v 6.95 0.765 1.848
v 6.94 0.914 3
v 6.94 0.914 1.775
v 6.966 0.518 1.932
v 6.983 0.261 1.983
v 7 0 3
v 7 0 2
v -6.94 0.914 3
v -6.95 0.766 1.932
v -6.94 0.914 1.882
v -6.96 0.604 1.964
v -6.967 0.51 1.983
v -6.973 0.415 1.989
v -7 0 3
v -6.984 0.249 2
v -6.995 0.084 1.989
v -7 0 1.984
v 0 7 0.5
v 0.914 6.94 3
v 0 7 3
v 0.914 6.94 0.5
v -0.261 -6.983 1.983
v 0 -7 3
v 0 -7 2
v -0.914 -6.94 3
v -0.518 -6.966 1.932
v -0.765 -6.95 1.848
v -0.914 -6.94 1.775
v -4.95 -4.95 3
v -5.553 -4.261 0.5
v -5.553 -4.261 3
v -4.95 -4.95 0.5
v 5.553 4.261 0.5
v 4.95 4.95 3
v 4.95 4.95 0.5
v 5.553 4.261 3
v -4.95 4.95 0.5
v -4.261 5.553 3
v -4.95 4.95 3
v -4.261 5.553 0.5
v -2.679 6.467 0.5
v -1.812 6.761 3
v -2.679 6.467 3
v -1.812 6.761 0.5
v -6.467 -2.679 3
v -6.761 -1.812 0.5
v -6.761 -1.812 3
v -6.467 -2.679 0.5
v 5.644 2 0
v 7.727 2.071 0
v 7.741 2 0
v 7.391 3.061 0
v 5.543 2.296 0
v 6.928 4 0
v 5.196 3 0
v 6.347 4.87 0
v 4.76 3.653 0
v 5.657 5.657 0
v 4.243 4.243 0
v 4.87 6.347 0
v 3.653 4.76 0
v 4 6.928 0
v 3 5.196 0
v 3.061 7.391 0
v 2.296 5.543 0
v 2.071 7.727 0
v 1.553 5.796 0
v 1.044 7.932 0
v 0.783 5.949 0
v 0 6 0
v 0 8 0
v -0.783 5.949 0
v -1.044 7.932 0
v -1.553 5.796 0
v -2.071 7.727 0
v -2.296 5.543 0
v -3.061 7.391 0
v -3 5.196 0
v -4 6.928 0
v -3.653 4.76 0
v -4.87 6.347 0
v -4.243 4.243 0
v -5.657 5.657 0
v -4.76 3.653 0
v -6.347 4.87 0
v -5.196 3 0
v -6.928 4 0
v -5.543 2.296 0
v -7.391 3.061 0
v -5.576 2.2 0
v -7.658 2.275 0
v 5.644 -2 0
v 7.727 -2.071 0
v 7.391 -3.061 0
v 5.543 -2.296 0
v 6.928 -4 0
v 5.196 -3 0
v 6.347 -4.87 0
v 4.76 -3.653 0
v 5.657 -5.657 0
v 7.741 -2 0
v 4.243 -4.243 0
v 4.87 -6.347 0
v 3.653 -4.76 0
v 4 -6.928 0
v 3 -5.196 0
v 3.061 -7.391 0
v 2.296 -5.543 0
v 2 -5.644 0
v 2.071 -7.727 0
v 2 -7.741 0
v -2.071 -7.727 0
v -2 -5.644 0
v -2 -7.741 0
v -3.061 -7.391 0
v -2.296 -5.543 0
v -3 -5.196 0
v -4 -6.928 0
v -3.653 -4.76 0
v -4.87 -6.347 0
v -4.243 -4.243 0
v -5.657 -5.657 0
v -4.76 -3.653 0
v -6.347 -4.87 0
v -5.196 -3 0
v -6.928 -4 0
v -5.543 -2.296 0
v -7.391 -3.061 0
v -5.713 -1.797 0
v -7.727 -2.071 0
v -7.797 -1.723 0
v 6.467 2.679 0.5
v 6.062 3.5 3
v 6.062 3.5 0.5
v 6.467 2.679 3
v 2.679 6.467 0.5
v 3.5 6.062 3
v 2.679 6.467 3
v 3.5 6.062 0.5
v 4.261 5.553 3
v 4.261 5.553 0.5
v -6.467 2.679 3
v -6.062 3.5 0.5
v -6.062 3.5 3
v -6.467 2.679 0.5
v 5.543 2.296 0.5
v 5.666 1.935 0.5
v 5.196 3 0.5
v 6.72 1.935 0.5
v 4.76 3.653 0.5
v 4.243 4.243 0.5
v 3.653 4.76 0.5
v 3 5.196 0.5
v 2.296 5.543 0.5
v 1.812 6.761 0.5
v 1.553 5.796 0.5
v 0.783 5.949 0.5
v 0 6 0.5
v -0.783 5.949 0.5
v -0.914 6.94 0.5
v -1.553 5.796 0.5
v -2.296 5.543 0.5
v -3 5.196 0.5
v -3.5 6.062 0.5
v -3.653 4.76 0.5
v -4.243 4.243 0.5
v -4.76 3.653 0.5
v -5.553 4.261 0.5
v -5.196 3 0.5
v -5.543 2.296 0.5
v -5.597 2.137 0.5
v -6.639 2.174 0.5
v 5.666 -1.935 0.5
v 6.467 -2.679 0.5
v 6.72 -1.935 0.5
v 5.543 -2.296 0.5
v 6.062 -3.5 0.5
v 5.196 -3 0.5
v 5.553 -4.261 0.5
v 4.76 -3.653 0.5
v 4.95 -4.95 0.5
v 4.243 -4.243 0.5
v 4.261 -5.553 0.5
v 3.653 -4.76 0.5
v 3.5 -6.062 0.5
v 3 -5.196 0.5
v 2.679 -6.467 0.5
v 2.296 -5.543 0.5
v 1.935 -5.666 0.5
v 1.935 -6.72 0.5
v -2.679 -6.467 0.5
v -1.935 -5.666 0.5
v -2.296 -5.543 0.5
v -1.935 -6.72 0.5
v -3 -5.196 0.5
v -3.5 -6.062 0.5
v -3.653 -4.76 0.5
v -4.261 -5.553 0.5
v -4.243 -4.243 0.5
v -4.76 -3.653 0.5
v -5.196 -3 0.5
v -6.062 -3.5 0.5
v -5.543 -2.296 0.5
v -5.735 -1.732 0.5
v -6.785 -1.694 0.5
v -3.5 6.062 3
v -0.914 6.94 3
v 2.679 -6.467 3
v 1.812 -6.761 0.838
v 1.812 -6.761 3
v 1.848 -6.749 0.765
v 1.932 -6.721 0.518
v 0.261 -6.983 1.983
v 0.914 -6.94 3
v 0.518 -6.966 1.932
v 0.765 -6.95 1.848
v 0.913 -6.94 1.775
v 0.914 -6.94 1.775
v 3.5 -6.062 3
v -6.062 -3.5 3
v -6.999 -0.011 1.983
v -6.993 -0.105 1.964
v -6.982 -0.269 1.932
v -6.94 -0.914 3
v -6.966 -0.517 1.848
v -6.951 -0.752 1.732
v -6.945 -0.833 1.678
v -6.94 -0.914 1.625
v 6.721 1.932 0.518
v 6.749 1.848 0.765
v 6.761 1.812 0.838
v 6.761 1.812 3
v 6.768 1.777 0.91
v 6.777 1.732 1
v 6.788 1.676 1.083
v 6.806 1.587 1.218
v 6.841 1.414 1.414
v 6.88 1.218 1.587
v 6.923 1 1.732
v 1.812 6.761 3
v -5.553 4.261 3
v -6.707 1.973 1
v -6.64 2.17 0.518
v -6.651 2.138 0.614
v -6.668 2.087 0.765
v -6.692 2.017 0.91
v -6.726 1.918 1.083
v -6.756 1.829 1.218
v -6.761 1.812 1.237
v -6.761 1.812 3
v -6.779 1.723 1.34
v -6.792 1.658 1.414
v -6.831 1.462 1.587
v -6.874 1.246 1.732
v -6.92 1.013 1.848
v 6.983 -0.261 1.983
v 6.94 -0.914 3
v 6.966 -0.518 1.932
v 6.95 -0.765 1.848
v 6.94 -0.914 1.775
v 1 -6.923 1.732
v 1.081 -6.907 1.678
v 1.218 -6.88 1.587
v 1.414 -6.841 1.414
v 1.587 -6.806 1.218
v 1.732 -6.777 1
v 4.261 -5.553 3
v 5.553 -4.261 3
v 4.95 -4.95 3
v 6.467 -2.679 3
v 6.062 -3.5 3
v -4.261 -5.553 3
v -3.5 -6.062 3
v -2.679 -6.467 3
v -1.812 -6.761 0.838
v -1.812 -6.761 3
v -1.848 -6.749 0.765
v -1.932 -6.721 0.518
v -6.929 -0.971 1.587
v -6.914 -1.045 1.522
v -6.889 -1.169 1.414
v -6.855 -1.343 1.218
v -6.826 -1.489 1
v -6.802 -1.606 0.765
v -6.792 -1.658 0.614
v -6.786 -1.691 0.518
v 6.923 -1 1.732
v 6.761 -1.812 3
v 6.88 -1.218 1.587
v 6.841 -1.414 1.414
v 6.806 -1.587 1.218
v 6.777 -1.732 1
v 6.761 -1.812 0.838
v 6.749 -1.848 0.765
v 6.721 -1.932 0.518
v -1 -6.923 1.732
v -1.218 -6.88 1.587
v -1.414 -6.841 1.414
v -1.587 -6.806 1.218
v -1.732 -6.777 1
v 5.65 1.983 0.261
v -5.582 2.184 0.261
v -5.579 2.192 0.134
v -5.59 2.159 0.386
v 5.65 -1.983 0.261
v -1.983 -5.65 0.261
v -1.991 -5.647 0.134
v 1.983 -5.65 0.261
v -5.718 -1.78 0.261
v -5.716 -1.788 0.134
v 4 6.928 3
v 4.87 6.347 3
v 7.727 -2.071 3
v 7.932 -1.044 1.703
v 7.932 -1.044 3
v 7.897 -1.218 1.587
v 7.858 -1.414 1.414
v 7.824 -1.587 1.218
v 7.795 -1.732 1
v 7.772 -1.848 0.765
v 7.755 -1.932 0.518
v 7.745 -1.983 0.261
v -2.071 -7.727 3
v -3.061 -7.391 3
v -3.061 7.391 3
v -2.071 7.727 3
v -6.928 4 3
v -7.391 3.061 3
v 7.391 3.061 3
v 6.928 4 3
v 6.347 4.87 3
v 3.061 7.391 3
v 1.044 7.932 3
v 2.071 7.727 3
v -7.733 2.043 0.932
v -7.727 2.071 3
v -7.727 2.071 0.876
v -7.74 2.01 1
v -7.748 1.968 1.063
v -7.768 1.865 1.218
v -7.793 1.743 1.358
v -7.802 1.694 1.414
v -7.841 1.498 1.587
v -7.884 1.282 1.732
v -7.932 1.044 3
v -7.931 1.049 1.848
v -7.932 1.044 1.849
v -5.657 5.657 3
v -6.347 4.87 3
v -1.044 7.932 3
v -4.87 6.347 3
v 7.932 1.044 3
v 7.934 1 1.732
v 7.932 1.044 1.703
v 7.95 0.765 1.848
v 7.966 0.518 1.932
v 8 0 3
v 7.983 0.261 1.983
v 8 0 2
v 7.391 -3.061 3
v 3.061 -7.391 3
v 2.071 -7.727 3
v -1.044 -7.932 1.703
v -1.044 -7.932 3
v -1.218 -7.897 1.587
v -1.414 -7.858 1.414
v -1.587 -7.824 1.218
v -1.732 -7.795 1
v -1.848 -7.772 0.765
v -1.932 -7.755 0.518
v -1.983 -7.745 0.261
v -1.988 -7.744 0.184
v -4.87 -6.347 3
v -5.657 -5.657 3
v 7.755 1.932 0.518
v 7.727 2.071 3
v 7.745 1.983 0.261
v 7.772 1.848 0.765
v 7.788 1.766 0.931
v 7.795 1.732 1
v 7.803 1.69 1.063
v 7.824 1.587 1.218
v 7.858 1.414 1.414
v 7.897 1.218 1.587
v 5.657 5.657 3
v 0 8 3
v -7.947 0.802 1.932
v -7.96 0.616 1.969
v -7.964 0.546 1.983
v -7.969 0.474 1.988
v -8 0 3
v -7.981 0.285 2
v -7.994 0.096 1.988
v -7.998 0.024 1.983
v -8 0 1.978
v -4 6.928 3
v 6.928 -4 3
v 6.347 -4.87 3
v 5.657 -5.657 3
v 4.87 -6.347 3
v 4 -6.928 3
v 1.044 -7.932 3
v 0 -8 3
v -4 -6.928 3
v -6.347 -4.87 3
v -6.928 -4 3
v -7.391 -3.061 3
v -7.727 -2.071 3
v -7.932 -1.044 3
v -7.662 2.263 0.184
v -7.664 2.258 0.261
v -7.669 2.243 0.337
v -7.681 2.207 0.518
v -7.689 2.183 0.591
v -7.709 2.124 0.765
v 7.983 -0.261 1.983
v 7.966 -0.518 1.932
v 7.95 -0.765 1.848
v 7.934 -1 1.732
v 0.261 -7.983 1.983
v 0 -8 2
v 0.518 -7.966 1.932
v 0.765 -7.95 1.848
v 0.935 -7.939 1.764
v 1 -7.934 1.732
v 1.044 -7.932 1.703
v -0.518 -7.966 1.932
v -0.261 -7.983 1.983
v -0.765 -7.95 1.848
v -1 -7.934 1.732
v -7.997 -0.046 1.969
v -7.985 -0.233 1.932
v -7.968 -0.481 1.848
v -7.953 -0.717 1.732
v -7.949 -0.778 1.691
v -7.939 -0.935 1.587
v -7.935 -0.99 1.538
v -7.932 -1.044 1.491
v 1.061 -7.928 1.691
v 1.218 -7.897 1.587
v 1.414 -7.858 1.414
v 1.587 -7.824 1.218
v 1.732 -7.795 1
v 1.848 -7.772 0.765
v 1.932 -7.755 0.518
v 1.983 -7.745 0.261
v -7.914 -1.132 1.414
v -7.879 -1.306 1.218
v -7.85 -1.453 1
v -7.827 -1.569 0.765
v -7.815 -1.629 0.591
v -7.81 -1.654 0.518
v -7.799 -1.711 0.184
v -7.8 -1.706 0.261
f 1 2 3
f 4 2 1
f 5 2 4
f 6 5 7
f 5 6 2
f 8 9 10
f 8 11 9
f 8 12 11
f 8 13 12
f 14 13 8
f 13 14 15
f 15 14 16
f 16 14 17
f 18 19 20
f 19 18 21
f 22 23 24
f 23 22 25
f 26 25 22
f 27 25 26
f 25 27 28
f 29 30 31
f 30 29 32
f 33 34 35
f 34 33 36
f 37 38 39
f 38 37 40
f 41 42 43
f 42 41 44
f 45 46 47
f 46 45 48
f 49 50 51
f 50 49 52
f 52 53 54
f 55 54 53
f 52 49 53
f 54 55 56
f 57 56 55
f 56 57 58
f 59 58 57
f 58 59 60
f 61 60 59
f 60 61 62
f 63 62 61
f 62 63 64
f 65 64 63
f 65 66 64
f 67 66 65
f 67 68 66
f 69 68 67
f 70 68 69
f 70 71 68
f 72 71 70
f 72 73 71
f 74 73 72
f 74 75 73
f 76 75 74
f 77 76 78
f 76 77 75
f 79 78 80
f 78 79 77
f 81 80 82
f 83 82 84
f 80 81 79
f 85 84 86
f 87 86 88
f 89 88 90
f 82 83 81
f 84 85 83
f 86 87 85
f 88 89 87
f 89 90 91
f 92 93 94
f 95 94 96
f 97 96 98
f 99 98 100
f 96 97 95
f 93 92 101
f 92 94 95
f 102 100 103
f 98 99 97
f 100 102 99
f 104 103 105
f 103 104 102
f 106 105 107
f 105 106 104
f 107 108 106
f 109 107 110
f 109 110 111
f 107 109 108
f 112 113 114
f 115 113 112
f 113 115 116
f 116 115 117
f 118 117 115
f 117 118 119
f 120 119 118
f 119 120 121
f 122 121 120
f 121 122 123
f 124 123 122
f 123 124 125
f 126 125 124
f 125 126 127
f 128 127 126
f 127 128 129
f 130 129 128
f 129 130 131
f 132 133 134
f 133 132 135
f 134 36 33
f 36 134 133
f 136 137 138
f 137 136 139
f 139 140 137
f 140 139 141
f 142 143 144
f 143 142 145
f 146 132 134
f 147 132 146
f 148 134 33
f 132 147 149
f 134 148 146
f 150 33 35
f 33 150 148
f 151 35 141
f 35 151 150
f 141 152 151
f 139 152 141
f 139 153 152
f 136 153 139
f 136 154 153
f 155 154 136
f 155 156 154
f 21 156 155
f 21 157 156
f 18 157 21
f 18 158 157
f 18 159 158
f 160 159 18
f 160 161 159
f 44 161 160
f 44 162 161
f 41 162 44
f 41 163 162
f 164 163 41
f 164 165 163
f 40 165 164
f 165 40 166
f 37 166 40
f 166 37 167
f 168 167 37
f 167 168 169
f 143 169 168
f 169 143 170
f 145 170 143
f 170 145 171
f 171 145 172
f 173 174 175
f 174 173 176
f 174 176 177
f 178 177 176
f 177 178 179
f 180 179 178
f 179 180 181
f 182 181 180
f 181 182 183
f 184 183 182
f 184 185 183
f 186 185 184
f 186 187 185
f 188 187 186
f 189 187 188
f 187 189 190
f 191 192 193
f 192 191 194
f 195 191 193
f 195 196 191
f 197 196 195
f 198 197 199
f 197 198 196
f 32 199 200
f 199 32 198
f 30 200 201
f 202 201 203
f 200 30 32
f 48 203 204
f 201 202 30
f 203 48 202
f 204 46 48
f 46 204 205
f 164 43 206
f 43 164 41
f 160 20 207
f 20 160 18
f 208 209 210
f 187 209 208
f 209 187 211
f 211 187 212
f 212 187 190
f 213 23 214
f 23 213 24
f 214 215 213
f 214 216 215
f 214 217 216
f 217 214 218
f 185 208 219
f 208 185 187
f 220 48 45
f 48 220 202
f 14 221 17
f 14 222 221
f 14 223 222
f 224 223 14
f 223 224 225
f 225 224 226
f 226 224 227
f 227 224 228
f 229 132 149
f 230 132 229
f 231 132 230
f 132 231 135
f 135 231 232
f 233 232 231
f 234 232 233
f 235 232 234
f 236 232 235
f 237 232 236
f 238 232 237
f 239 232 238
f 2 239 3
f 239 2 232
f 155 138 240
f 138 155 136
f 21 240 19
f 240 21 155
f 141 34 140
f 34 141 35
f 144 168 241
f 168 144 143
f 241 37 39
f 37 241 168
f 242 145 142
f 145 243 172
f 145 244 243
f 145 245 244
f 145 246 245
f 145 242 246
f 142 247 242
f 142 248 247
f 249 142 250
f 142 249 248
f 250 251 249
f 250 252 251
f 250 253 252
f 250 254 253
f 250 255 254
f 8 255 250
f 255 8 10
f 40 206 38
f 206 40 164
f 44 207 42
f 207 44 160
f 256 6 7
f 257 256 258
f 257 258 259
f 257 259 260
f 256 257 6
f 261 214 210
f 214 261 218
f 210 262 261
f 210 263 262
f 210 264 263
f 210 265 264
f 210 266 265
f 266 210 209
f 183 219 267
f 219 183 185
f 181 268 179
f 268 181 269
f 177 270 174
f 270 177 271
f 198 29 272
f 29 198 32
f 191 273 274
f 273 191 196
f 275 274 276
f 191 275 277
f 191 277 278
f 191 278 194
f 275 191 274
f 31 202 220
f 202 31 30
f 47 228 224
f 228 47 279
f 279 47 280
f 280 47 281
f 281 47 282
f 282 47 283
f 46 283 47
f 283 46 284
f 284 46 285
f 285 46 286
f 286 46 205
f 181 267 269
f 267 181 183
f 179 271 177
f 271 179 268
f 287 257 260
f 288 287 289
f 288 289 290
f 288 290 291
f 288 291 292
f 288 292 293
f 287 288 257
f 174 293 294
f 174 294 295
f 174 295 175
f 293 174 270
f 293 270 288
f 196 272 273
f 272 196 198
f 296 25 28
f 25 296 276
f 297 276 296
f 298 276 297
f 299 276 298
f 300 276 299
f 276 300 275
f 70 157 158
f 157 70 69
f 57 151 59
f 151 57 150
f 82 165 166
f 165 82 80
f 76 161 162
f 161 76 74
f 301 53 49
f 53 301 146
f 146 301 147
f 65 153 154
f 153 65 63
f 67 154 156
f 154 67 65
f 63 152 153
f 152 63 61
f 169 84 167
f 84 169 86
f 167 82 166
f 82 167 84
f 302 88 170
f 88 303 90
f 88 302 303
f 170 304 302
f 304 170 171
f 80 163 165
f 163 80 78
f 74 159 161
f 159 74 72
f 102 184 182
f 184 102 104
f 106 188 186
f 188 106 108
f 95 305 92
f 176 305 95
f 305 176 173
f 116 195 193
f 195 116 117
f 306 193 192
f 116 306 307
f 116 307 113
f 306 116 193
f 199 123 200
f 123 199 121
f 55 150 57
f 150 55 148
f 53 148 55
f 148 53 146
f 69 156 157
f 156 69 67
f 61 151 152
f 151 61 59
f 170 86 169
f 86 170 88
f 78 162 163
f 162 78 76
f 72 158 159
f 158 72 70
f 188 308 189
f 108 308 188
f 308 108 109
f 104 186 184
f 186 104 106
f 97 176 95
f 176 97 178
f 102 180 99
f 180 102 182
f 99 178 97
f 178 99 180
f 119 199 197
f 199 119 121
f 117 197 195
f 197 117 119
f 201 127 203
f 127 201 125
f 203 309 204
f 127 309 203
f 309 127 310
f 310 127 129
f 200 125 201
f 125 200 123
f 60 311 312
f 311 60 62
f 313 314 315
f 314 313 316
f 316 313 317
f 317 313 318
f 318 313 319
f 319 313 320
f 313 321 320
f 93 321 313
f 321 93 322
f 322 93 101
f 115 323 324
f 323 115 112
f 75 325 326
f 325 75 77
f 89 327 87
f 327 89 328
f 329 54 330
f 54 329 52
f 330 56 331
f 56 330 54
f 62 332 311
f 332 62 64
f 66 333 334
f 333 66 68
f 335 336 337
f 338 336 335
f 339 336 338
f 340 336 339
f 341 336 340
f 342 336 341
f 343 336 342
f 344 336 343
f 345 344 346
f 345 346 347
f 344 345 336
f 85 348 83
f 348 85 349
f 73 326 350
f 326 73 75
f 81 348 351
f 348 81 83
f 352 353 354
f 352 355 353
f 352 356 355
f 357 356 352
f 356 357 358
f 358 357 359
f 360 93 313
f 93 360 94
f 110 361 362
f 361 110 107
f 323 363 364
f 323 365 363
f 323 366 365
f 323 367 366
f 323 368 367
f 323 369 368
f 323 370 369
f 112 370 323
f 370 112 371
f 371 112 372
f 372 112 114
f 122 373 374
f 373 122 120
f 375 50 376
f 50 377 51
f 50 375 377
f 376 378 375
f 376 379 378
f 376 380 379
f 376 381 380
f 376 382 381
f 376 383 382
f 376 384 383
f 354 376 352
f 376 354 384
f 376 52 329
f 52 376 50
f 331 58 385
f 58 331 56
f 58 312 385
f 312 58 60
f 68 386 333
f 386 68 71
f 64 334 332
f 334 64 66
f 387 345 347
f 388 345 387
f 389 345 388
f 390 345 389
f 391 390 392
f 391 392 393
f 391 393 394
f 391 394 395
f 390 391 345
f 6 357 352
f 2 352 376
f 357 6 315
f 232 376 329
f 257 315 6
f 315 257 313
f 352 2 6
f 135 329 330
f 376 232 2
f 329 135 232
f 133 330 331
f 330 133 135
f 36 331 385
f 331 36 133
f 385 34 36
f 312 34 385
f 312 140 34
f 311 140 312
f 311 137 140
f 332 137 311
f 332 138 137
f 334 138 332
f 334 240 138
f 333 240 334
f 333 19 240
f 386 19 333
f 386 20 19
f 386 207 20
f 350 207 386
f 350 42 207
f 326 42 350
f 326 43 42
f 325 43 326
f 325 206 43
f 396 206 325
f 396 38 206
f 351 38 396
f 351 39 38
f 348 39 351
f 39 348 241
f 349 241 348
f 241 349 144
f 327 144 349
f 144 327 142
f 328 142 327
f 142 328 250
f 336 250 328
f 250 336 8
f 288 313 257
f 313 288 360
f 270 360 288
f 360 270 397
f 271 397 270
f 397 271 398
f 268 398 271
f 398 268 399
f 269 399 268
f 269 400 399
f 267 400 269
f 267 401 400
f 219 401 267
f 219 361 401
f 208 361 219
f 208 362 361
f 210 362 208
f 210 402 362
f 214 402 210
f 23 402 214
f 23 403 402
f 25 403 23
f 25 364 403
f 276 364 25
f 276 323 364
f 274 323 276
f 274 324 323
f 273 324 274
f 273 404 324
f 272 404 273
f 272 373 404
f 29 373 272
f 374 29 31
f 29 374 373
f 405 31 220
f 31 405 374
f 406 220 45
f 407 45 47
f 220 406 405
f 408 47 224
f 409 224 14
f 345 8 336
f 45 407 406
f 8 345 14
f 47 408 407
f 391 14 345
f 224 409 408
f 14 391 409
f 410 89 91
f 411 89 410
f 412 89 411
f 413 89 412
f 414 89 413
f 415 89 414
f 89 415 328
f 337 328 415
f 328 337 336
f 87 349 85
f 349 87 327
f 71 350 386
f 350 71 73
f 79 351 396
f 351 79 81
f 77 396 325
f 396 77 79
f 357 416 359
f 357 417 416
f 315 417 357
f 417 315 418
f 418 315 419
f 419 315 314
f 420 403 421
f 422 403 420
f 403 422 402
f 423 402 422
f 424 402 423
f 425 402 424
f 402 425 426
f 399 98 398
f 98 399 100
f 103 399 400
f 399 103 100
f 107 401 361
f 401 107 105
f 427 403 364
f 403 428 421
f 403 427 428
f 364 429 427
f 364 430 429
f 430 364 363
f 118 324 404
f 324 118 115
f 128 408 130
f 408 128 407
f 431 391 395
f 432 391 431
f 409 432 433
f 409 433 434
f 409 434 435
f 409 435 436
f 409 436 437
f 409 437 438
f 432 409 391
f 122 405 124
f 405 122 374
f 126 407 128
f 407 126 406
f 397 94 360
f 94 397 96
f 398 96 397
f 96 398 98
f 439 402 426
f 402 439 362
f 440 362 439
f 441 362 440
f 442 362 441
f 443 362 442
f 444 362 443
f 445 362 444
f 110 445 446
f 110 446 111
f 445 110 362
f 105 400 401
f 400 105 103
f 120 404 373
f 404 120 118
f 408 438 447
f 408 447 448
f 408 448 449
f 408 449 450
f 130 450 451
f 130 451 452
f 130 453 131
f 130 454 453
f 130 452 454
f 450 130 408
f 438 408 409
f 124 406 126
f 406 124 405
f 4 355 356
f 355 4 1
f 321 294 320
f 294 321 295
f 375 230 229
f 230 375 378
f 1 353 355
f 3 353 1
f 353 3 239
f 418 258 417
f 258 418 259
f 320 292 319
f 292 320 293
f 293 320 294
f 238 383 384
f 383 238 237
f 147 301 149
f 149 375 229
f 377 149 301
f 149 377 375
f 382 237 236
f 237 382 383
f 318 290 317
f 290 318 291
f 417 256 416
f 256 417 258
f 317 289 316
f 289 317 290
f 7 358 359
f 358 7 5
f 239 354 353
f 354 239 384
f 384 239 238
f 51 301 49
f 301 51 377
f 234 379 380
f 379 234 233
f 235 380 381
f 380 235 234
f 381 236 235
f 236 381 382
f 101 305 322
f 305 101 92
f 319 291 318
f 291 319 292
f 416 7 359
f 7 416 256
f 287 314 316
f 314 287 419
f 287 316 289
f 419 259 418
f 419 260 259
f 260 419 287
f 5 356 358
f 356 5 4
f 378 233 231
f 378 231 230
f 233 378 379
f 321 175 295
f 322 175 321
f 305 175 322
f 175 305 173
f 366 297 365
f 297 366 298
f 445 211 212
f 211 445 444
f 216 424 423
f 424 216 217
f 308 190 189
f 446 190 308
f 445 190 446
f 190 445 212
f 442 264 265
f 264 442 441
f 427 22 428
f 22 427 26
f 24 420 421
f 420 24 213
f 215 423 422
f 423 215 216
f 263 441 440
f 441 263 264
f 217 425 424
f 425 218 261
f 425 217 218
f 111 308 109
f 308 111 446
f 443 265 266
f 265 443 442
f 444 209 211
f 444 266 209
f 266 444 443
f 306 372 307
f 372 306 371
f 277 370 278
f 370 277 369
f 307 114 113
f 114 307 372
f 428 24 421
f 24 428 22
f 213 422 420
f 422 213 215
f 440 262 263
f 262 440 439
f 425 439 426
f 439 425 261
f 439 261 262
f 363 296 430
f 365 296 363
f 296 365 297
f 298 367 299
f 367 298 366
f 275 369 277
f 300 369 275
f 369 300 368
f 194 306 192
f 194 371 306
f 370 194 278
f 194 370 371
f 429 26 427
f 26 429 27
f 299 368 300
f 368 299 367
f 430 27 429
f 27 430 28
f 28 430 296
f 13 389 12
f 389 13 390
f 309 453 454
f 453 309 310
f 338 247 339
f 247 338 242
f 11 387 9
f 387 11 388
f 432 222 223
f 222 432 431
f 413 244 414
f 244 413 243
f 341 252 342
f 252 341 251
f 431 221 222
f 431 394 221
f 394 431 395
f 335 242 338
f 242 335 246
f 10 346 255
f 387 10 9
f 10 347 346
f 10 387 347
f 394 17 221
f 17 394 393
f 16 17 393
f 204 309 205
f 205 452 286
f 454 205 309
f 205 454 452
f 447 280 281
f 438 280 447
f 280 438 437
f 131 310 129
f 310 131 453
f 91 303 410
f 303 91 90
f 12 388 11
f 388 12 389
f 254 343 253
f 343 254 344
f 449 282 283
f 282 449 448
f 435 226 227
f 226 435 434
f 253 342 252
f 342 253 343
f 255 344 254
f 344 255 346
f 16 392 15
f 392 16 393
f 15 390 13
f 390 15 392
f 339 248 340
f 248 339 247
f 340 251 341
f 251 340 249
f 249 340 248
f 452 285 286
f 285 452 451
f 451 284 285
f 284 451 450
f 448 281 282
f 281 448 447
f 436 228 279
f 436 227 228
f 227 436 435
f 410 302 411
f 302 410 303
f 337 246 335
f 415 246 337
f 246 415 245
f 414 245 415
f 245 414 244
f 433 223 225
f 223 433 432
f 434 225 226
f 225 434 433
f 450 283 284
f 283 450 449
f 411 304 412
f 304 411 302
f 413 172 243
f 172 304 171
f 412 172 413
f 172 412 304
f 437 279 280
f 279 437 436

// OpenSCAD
// file: ../build_environments.scad
// build_environments.scad: modules to build level sections
//

module pool(diameter=10.0, wall_height=2.0, step_width=3.0, connections=[])
{
    difference() {
        union() {
        difference() {
            cylinder(h=0.5,r1=diameter+step_width,r2=diameter+step_width,$fn=48);
            translate([0,0,-0.1])
                cylinder(h=0.7,r1=diameter,r2=diameter,$fn=48);
        }
        difference() {
            cylinder(h=wall_height,r1=diameter+step_width+1.0,r2=diameter+step_width+1.0,$fn=48);
            translate([0,0,-0.1])
                cylinder(h=wall_height+0.2,r1=diameter+step_width,r2=diameter+step_width,$fn=48);
        }
        }
    
        for (c = connections)
        {
            rotate([0,90,0]) {
                angle = atan2(c[1],c[0]);
                rotate([-angle,0,0]) {
                    cylinder(h=diameter+5.0,r1=c[2],r2=c[2],$fn=48);
                }
            }
        }
    }
}

module straight(length=10.0, width=2.0, dy1=0.0, dy2=0.0, dz=0.0)
{
    dims = [0, 0, 0, 0, 0, (dz/length)];
    matrix = [
        [ 1, dims[0], dims[1], 0 ],
        [ dims[2], 1, dims[4], 0 ],
        [ dims[5], dims[3], 1, 0 ],
        [ 0, 0, 0, 1 ]
    ];
    multmatrix(matrix)
    difference() {
        translate([dy1,0,0])
        union() {
            rotate([0,90,0]) {
                difference() {
                    cylinder(h=(length-dy1-dy2),r1=width+1.0,r2=width+1.0,$fn=24);
                    translate([0,0,-0.1])
                        cylinder(h=(length-dy1-dy2+0.2),r1=width,r2=width,$fn=24);
                }
                difference() {
                    cylinder(h=1.0,r1=width+2.0,r2=width+2.0,$fn=24);
                    translate([0,0,-0.1])
                        cylinder(h=1.2,r1=width,r2=width,$fn=24);
                }
                translate([0,0,(length-dy1-dy2)-1.0]) {
                    difference() {
                        cylinder(h=1.0,r1=width+2.0,r2=width+2.0,$fn=24);
                        translate([0,0,-0.1])
                            cylinder(h=1.2,r1=width,r2=width,$fn=24);
                    }
                }
            }
        }
        translate([0,0,-(2*width+4.0)/2])
            cube([3*length,3*length,2*width+4.0],center=true);
    }
}

module curve(p0=[0,0], center=[0,0], dir=1, angle=0.0, width=2.0)
{
    radius = sqrt((p0[0]-center[0])*(p0[0]-center[0]) + (p0[1]-center[1])*(p0[1]-center[1]));
    if (dir == 0) {
        difference() {
            rotate([0,0,-90])
            difference() {
                rotate_extrude(angle = angle, convexity = 10, $fn=32)
                    translate([radius, 0, 0])
                        circle(r = width+1.0,$fn=24);
                rotate([0,0,-1.0])
                    rotate_extrude(angle = angle+2.0, convexity = 10, $fn=32)
                        translate([radius, 0, 0])
                            circle(r = width,$fn=24);
            }
            translate([0,0,-(2*width+4.0)/2])
                cube([5*radius,5*radius,2*width+4.0],center=true);
        }
    }
    else {
        difference() {
            rotate([0,0,90])
            difference() {
                rotate_extrude(angle = -angle, convexity = 10, $fn=32)
                    translate([radius, 0, 0])
                        circle(r = width+1.0,$fn=24);
                rotate([0,0,1.0])
                    rotate_extrude(angle = -angle-2.0, convexity = 10, $fn=32)
                        translate([radius, 0, 0])
                            circle(r = width,$fn=24);
            }
            translate([0,0,-(2*width+4.0)/2])
                cube([5*radius,5*radius,2*width+4.0],center=true);
        }
    }

}

// test pool
//pool(diameter=12.0000, wall_height=3.0000, step_width=3.0000, connections=[[0.0000,-26.0000,2.0000], [23.6074,0.0000,2.0000]]);

// test straight, slope
//straight(length=26.0000, width=2.0000, dy1=11.8322, dy2=6.7082, dz=0.0000);
//straight(length=29.1549, width=12.0000, dy1=0.0000, dy2=0.0000, dz=-15.0000);

// test curve
//curve(p0=[23.6074, 0.0000], center=[23.6074, 5.0000], dir=0, angle=60.1011, width=2.0000);
//curve(p0=[33.6426, 12.4219], center=[37.9771, 9.9295], dir=1, angle=120.4627, width=2.0000);
// main file
use <../build_environments.scad>;
pool(diameter=6.0000, wall_height=3.0000, step_width=1.0000, connections=[[17.0000,0.0000,2.0000], [0.0000,-16.0000,2.0000], [-6.7502,0.2411,2.0000]]);
